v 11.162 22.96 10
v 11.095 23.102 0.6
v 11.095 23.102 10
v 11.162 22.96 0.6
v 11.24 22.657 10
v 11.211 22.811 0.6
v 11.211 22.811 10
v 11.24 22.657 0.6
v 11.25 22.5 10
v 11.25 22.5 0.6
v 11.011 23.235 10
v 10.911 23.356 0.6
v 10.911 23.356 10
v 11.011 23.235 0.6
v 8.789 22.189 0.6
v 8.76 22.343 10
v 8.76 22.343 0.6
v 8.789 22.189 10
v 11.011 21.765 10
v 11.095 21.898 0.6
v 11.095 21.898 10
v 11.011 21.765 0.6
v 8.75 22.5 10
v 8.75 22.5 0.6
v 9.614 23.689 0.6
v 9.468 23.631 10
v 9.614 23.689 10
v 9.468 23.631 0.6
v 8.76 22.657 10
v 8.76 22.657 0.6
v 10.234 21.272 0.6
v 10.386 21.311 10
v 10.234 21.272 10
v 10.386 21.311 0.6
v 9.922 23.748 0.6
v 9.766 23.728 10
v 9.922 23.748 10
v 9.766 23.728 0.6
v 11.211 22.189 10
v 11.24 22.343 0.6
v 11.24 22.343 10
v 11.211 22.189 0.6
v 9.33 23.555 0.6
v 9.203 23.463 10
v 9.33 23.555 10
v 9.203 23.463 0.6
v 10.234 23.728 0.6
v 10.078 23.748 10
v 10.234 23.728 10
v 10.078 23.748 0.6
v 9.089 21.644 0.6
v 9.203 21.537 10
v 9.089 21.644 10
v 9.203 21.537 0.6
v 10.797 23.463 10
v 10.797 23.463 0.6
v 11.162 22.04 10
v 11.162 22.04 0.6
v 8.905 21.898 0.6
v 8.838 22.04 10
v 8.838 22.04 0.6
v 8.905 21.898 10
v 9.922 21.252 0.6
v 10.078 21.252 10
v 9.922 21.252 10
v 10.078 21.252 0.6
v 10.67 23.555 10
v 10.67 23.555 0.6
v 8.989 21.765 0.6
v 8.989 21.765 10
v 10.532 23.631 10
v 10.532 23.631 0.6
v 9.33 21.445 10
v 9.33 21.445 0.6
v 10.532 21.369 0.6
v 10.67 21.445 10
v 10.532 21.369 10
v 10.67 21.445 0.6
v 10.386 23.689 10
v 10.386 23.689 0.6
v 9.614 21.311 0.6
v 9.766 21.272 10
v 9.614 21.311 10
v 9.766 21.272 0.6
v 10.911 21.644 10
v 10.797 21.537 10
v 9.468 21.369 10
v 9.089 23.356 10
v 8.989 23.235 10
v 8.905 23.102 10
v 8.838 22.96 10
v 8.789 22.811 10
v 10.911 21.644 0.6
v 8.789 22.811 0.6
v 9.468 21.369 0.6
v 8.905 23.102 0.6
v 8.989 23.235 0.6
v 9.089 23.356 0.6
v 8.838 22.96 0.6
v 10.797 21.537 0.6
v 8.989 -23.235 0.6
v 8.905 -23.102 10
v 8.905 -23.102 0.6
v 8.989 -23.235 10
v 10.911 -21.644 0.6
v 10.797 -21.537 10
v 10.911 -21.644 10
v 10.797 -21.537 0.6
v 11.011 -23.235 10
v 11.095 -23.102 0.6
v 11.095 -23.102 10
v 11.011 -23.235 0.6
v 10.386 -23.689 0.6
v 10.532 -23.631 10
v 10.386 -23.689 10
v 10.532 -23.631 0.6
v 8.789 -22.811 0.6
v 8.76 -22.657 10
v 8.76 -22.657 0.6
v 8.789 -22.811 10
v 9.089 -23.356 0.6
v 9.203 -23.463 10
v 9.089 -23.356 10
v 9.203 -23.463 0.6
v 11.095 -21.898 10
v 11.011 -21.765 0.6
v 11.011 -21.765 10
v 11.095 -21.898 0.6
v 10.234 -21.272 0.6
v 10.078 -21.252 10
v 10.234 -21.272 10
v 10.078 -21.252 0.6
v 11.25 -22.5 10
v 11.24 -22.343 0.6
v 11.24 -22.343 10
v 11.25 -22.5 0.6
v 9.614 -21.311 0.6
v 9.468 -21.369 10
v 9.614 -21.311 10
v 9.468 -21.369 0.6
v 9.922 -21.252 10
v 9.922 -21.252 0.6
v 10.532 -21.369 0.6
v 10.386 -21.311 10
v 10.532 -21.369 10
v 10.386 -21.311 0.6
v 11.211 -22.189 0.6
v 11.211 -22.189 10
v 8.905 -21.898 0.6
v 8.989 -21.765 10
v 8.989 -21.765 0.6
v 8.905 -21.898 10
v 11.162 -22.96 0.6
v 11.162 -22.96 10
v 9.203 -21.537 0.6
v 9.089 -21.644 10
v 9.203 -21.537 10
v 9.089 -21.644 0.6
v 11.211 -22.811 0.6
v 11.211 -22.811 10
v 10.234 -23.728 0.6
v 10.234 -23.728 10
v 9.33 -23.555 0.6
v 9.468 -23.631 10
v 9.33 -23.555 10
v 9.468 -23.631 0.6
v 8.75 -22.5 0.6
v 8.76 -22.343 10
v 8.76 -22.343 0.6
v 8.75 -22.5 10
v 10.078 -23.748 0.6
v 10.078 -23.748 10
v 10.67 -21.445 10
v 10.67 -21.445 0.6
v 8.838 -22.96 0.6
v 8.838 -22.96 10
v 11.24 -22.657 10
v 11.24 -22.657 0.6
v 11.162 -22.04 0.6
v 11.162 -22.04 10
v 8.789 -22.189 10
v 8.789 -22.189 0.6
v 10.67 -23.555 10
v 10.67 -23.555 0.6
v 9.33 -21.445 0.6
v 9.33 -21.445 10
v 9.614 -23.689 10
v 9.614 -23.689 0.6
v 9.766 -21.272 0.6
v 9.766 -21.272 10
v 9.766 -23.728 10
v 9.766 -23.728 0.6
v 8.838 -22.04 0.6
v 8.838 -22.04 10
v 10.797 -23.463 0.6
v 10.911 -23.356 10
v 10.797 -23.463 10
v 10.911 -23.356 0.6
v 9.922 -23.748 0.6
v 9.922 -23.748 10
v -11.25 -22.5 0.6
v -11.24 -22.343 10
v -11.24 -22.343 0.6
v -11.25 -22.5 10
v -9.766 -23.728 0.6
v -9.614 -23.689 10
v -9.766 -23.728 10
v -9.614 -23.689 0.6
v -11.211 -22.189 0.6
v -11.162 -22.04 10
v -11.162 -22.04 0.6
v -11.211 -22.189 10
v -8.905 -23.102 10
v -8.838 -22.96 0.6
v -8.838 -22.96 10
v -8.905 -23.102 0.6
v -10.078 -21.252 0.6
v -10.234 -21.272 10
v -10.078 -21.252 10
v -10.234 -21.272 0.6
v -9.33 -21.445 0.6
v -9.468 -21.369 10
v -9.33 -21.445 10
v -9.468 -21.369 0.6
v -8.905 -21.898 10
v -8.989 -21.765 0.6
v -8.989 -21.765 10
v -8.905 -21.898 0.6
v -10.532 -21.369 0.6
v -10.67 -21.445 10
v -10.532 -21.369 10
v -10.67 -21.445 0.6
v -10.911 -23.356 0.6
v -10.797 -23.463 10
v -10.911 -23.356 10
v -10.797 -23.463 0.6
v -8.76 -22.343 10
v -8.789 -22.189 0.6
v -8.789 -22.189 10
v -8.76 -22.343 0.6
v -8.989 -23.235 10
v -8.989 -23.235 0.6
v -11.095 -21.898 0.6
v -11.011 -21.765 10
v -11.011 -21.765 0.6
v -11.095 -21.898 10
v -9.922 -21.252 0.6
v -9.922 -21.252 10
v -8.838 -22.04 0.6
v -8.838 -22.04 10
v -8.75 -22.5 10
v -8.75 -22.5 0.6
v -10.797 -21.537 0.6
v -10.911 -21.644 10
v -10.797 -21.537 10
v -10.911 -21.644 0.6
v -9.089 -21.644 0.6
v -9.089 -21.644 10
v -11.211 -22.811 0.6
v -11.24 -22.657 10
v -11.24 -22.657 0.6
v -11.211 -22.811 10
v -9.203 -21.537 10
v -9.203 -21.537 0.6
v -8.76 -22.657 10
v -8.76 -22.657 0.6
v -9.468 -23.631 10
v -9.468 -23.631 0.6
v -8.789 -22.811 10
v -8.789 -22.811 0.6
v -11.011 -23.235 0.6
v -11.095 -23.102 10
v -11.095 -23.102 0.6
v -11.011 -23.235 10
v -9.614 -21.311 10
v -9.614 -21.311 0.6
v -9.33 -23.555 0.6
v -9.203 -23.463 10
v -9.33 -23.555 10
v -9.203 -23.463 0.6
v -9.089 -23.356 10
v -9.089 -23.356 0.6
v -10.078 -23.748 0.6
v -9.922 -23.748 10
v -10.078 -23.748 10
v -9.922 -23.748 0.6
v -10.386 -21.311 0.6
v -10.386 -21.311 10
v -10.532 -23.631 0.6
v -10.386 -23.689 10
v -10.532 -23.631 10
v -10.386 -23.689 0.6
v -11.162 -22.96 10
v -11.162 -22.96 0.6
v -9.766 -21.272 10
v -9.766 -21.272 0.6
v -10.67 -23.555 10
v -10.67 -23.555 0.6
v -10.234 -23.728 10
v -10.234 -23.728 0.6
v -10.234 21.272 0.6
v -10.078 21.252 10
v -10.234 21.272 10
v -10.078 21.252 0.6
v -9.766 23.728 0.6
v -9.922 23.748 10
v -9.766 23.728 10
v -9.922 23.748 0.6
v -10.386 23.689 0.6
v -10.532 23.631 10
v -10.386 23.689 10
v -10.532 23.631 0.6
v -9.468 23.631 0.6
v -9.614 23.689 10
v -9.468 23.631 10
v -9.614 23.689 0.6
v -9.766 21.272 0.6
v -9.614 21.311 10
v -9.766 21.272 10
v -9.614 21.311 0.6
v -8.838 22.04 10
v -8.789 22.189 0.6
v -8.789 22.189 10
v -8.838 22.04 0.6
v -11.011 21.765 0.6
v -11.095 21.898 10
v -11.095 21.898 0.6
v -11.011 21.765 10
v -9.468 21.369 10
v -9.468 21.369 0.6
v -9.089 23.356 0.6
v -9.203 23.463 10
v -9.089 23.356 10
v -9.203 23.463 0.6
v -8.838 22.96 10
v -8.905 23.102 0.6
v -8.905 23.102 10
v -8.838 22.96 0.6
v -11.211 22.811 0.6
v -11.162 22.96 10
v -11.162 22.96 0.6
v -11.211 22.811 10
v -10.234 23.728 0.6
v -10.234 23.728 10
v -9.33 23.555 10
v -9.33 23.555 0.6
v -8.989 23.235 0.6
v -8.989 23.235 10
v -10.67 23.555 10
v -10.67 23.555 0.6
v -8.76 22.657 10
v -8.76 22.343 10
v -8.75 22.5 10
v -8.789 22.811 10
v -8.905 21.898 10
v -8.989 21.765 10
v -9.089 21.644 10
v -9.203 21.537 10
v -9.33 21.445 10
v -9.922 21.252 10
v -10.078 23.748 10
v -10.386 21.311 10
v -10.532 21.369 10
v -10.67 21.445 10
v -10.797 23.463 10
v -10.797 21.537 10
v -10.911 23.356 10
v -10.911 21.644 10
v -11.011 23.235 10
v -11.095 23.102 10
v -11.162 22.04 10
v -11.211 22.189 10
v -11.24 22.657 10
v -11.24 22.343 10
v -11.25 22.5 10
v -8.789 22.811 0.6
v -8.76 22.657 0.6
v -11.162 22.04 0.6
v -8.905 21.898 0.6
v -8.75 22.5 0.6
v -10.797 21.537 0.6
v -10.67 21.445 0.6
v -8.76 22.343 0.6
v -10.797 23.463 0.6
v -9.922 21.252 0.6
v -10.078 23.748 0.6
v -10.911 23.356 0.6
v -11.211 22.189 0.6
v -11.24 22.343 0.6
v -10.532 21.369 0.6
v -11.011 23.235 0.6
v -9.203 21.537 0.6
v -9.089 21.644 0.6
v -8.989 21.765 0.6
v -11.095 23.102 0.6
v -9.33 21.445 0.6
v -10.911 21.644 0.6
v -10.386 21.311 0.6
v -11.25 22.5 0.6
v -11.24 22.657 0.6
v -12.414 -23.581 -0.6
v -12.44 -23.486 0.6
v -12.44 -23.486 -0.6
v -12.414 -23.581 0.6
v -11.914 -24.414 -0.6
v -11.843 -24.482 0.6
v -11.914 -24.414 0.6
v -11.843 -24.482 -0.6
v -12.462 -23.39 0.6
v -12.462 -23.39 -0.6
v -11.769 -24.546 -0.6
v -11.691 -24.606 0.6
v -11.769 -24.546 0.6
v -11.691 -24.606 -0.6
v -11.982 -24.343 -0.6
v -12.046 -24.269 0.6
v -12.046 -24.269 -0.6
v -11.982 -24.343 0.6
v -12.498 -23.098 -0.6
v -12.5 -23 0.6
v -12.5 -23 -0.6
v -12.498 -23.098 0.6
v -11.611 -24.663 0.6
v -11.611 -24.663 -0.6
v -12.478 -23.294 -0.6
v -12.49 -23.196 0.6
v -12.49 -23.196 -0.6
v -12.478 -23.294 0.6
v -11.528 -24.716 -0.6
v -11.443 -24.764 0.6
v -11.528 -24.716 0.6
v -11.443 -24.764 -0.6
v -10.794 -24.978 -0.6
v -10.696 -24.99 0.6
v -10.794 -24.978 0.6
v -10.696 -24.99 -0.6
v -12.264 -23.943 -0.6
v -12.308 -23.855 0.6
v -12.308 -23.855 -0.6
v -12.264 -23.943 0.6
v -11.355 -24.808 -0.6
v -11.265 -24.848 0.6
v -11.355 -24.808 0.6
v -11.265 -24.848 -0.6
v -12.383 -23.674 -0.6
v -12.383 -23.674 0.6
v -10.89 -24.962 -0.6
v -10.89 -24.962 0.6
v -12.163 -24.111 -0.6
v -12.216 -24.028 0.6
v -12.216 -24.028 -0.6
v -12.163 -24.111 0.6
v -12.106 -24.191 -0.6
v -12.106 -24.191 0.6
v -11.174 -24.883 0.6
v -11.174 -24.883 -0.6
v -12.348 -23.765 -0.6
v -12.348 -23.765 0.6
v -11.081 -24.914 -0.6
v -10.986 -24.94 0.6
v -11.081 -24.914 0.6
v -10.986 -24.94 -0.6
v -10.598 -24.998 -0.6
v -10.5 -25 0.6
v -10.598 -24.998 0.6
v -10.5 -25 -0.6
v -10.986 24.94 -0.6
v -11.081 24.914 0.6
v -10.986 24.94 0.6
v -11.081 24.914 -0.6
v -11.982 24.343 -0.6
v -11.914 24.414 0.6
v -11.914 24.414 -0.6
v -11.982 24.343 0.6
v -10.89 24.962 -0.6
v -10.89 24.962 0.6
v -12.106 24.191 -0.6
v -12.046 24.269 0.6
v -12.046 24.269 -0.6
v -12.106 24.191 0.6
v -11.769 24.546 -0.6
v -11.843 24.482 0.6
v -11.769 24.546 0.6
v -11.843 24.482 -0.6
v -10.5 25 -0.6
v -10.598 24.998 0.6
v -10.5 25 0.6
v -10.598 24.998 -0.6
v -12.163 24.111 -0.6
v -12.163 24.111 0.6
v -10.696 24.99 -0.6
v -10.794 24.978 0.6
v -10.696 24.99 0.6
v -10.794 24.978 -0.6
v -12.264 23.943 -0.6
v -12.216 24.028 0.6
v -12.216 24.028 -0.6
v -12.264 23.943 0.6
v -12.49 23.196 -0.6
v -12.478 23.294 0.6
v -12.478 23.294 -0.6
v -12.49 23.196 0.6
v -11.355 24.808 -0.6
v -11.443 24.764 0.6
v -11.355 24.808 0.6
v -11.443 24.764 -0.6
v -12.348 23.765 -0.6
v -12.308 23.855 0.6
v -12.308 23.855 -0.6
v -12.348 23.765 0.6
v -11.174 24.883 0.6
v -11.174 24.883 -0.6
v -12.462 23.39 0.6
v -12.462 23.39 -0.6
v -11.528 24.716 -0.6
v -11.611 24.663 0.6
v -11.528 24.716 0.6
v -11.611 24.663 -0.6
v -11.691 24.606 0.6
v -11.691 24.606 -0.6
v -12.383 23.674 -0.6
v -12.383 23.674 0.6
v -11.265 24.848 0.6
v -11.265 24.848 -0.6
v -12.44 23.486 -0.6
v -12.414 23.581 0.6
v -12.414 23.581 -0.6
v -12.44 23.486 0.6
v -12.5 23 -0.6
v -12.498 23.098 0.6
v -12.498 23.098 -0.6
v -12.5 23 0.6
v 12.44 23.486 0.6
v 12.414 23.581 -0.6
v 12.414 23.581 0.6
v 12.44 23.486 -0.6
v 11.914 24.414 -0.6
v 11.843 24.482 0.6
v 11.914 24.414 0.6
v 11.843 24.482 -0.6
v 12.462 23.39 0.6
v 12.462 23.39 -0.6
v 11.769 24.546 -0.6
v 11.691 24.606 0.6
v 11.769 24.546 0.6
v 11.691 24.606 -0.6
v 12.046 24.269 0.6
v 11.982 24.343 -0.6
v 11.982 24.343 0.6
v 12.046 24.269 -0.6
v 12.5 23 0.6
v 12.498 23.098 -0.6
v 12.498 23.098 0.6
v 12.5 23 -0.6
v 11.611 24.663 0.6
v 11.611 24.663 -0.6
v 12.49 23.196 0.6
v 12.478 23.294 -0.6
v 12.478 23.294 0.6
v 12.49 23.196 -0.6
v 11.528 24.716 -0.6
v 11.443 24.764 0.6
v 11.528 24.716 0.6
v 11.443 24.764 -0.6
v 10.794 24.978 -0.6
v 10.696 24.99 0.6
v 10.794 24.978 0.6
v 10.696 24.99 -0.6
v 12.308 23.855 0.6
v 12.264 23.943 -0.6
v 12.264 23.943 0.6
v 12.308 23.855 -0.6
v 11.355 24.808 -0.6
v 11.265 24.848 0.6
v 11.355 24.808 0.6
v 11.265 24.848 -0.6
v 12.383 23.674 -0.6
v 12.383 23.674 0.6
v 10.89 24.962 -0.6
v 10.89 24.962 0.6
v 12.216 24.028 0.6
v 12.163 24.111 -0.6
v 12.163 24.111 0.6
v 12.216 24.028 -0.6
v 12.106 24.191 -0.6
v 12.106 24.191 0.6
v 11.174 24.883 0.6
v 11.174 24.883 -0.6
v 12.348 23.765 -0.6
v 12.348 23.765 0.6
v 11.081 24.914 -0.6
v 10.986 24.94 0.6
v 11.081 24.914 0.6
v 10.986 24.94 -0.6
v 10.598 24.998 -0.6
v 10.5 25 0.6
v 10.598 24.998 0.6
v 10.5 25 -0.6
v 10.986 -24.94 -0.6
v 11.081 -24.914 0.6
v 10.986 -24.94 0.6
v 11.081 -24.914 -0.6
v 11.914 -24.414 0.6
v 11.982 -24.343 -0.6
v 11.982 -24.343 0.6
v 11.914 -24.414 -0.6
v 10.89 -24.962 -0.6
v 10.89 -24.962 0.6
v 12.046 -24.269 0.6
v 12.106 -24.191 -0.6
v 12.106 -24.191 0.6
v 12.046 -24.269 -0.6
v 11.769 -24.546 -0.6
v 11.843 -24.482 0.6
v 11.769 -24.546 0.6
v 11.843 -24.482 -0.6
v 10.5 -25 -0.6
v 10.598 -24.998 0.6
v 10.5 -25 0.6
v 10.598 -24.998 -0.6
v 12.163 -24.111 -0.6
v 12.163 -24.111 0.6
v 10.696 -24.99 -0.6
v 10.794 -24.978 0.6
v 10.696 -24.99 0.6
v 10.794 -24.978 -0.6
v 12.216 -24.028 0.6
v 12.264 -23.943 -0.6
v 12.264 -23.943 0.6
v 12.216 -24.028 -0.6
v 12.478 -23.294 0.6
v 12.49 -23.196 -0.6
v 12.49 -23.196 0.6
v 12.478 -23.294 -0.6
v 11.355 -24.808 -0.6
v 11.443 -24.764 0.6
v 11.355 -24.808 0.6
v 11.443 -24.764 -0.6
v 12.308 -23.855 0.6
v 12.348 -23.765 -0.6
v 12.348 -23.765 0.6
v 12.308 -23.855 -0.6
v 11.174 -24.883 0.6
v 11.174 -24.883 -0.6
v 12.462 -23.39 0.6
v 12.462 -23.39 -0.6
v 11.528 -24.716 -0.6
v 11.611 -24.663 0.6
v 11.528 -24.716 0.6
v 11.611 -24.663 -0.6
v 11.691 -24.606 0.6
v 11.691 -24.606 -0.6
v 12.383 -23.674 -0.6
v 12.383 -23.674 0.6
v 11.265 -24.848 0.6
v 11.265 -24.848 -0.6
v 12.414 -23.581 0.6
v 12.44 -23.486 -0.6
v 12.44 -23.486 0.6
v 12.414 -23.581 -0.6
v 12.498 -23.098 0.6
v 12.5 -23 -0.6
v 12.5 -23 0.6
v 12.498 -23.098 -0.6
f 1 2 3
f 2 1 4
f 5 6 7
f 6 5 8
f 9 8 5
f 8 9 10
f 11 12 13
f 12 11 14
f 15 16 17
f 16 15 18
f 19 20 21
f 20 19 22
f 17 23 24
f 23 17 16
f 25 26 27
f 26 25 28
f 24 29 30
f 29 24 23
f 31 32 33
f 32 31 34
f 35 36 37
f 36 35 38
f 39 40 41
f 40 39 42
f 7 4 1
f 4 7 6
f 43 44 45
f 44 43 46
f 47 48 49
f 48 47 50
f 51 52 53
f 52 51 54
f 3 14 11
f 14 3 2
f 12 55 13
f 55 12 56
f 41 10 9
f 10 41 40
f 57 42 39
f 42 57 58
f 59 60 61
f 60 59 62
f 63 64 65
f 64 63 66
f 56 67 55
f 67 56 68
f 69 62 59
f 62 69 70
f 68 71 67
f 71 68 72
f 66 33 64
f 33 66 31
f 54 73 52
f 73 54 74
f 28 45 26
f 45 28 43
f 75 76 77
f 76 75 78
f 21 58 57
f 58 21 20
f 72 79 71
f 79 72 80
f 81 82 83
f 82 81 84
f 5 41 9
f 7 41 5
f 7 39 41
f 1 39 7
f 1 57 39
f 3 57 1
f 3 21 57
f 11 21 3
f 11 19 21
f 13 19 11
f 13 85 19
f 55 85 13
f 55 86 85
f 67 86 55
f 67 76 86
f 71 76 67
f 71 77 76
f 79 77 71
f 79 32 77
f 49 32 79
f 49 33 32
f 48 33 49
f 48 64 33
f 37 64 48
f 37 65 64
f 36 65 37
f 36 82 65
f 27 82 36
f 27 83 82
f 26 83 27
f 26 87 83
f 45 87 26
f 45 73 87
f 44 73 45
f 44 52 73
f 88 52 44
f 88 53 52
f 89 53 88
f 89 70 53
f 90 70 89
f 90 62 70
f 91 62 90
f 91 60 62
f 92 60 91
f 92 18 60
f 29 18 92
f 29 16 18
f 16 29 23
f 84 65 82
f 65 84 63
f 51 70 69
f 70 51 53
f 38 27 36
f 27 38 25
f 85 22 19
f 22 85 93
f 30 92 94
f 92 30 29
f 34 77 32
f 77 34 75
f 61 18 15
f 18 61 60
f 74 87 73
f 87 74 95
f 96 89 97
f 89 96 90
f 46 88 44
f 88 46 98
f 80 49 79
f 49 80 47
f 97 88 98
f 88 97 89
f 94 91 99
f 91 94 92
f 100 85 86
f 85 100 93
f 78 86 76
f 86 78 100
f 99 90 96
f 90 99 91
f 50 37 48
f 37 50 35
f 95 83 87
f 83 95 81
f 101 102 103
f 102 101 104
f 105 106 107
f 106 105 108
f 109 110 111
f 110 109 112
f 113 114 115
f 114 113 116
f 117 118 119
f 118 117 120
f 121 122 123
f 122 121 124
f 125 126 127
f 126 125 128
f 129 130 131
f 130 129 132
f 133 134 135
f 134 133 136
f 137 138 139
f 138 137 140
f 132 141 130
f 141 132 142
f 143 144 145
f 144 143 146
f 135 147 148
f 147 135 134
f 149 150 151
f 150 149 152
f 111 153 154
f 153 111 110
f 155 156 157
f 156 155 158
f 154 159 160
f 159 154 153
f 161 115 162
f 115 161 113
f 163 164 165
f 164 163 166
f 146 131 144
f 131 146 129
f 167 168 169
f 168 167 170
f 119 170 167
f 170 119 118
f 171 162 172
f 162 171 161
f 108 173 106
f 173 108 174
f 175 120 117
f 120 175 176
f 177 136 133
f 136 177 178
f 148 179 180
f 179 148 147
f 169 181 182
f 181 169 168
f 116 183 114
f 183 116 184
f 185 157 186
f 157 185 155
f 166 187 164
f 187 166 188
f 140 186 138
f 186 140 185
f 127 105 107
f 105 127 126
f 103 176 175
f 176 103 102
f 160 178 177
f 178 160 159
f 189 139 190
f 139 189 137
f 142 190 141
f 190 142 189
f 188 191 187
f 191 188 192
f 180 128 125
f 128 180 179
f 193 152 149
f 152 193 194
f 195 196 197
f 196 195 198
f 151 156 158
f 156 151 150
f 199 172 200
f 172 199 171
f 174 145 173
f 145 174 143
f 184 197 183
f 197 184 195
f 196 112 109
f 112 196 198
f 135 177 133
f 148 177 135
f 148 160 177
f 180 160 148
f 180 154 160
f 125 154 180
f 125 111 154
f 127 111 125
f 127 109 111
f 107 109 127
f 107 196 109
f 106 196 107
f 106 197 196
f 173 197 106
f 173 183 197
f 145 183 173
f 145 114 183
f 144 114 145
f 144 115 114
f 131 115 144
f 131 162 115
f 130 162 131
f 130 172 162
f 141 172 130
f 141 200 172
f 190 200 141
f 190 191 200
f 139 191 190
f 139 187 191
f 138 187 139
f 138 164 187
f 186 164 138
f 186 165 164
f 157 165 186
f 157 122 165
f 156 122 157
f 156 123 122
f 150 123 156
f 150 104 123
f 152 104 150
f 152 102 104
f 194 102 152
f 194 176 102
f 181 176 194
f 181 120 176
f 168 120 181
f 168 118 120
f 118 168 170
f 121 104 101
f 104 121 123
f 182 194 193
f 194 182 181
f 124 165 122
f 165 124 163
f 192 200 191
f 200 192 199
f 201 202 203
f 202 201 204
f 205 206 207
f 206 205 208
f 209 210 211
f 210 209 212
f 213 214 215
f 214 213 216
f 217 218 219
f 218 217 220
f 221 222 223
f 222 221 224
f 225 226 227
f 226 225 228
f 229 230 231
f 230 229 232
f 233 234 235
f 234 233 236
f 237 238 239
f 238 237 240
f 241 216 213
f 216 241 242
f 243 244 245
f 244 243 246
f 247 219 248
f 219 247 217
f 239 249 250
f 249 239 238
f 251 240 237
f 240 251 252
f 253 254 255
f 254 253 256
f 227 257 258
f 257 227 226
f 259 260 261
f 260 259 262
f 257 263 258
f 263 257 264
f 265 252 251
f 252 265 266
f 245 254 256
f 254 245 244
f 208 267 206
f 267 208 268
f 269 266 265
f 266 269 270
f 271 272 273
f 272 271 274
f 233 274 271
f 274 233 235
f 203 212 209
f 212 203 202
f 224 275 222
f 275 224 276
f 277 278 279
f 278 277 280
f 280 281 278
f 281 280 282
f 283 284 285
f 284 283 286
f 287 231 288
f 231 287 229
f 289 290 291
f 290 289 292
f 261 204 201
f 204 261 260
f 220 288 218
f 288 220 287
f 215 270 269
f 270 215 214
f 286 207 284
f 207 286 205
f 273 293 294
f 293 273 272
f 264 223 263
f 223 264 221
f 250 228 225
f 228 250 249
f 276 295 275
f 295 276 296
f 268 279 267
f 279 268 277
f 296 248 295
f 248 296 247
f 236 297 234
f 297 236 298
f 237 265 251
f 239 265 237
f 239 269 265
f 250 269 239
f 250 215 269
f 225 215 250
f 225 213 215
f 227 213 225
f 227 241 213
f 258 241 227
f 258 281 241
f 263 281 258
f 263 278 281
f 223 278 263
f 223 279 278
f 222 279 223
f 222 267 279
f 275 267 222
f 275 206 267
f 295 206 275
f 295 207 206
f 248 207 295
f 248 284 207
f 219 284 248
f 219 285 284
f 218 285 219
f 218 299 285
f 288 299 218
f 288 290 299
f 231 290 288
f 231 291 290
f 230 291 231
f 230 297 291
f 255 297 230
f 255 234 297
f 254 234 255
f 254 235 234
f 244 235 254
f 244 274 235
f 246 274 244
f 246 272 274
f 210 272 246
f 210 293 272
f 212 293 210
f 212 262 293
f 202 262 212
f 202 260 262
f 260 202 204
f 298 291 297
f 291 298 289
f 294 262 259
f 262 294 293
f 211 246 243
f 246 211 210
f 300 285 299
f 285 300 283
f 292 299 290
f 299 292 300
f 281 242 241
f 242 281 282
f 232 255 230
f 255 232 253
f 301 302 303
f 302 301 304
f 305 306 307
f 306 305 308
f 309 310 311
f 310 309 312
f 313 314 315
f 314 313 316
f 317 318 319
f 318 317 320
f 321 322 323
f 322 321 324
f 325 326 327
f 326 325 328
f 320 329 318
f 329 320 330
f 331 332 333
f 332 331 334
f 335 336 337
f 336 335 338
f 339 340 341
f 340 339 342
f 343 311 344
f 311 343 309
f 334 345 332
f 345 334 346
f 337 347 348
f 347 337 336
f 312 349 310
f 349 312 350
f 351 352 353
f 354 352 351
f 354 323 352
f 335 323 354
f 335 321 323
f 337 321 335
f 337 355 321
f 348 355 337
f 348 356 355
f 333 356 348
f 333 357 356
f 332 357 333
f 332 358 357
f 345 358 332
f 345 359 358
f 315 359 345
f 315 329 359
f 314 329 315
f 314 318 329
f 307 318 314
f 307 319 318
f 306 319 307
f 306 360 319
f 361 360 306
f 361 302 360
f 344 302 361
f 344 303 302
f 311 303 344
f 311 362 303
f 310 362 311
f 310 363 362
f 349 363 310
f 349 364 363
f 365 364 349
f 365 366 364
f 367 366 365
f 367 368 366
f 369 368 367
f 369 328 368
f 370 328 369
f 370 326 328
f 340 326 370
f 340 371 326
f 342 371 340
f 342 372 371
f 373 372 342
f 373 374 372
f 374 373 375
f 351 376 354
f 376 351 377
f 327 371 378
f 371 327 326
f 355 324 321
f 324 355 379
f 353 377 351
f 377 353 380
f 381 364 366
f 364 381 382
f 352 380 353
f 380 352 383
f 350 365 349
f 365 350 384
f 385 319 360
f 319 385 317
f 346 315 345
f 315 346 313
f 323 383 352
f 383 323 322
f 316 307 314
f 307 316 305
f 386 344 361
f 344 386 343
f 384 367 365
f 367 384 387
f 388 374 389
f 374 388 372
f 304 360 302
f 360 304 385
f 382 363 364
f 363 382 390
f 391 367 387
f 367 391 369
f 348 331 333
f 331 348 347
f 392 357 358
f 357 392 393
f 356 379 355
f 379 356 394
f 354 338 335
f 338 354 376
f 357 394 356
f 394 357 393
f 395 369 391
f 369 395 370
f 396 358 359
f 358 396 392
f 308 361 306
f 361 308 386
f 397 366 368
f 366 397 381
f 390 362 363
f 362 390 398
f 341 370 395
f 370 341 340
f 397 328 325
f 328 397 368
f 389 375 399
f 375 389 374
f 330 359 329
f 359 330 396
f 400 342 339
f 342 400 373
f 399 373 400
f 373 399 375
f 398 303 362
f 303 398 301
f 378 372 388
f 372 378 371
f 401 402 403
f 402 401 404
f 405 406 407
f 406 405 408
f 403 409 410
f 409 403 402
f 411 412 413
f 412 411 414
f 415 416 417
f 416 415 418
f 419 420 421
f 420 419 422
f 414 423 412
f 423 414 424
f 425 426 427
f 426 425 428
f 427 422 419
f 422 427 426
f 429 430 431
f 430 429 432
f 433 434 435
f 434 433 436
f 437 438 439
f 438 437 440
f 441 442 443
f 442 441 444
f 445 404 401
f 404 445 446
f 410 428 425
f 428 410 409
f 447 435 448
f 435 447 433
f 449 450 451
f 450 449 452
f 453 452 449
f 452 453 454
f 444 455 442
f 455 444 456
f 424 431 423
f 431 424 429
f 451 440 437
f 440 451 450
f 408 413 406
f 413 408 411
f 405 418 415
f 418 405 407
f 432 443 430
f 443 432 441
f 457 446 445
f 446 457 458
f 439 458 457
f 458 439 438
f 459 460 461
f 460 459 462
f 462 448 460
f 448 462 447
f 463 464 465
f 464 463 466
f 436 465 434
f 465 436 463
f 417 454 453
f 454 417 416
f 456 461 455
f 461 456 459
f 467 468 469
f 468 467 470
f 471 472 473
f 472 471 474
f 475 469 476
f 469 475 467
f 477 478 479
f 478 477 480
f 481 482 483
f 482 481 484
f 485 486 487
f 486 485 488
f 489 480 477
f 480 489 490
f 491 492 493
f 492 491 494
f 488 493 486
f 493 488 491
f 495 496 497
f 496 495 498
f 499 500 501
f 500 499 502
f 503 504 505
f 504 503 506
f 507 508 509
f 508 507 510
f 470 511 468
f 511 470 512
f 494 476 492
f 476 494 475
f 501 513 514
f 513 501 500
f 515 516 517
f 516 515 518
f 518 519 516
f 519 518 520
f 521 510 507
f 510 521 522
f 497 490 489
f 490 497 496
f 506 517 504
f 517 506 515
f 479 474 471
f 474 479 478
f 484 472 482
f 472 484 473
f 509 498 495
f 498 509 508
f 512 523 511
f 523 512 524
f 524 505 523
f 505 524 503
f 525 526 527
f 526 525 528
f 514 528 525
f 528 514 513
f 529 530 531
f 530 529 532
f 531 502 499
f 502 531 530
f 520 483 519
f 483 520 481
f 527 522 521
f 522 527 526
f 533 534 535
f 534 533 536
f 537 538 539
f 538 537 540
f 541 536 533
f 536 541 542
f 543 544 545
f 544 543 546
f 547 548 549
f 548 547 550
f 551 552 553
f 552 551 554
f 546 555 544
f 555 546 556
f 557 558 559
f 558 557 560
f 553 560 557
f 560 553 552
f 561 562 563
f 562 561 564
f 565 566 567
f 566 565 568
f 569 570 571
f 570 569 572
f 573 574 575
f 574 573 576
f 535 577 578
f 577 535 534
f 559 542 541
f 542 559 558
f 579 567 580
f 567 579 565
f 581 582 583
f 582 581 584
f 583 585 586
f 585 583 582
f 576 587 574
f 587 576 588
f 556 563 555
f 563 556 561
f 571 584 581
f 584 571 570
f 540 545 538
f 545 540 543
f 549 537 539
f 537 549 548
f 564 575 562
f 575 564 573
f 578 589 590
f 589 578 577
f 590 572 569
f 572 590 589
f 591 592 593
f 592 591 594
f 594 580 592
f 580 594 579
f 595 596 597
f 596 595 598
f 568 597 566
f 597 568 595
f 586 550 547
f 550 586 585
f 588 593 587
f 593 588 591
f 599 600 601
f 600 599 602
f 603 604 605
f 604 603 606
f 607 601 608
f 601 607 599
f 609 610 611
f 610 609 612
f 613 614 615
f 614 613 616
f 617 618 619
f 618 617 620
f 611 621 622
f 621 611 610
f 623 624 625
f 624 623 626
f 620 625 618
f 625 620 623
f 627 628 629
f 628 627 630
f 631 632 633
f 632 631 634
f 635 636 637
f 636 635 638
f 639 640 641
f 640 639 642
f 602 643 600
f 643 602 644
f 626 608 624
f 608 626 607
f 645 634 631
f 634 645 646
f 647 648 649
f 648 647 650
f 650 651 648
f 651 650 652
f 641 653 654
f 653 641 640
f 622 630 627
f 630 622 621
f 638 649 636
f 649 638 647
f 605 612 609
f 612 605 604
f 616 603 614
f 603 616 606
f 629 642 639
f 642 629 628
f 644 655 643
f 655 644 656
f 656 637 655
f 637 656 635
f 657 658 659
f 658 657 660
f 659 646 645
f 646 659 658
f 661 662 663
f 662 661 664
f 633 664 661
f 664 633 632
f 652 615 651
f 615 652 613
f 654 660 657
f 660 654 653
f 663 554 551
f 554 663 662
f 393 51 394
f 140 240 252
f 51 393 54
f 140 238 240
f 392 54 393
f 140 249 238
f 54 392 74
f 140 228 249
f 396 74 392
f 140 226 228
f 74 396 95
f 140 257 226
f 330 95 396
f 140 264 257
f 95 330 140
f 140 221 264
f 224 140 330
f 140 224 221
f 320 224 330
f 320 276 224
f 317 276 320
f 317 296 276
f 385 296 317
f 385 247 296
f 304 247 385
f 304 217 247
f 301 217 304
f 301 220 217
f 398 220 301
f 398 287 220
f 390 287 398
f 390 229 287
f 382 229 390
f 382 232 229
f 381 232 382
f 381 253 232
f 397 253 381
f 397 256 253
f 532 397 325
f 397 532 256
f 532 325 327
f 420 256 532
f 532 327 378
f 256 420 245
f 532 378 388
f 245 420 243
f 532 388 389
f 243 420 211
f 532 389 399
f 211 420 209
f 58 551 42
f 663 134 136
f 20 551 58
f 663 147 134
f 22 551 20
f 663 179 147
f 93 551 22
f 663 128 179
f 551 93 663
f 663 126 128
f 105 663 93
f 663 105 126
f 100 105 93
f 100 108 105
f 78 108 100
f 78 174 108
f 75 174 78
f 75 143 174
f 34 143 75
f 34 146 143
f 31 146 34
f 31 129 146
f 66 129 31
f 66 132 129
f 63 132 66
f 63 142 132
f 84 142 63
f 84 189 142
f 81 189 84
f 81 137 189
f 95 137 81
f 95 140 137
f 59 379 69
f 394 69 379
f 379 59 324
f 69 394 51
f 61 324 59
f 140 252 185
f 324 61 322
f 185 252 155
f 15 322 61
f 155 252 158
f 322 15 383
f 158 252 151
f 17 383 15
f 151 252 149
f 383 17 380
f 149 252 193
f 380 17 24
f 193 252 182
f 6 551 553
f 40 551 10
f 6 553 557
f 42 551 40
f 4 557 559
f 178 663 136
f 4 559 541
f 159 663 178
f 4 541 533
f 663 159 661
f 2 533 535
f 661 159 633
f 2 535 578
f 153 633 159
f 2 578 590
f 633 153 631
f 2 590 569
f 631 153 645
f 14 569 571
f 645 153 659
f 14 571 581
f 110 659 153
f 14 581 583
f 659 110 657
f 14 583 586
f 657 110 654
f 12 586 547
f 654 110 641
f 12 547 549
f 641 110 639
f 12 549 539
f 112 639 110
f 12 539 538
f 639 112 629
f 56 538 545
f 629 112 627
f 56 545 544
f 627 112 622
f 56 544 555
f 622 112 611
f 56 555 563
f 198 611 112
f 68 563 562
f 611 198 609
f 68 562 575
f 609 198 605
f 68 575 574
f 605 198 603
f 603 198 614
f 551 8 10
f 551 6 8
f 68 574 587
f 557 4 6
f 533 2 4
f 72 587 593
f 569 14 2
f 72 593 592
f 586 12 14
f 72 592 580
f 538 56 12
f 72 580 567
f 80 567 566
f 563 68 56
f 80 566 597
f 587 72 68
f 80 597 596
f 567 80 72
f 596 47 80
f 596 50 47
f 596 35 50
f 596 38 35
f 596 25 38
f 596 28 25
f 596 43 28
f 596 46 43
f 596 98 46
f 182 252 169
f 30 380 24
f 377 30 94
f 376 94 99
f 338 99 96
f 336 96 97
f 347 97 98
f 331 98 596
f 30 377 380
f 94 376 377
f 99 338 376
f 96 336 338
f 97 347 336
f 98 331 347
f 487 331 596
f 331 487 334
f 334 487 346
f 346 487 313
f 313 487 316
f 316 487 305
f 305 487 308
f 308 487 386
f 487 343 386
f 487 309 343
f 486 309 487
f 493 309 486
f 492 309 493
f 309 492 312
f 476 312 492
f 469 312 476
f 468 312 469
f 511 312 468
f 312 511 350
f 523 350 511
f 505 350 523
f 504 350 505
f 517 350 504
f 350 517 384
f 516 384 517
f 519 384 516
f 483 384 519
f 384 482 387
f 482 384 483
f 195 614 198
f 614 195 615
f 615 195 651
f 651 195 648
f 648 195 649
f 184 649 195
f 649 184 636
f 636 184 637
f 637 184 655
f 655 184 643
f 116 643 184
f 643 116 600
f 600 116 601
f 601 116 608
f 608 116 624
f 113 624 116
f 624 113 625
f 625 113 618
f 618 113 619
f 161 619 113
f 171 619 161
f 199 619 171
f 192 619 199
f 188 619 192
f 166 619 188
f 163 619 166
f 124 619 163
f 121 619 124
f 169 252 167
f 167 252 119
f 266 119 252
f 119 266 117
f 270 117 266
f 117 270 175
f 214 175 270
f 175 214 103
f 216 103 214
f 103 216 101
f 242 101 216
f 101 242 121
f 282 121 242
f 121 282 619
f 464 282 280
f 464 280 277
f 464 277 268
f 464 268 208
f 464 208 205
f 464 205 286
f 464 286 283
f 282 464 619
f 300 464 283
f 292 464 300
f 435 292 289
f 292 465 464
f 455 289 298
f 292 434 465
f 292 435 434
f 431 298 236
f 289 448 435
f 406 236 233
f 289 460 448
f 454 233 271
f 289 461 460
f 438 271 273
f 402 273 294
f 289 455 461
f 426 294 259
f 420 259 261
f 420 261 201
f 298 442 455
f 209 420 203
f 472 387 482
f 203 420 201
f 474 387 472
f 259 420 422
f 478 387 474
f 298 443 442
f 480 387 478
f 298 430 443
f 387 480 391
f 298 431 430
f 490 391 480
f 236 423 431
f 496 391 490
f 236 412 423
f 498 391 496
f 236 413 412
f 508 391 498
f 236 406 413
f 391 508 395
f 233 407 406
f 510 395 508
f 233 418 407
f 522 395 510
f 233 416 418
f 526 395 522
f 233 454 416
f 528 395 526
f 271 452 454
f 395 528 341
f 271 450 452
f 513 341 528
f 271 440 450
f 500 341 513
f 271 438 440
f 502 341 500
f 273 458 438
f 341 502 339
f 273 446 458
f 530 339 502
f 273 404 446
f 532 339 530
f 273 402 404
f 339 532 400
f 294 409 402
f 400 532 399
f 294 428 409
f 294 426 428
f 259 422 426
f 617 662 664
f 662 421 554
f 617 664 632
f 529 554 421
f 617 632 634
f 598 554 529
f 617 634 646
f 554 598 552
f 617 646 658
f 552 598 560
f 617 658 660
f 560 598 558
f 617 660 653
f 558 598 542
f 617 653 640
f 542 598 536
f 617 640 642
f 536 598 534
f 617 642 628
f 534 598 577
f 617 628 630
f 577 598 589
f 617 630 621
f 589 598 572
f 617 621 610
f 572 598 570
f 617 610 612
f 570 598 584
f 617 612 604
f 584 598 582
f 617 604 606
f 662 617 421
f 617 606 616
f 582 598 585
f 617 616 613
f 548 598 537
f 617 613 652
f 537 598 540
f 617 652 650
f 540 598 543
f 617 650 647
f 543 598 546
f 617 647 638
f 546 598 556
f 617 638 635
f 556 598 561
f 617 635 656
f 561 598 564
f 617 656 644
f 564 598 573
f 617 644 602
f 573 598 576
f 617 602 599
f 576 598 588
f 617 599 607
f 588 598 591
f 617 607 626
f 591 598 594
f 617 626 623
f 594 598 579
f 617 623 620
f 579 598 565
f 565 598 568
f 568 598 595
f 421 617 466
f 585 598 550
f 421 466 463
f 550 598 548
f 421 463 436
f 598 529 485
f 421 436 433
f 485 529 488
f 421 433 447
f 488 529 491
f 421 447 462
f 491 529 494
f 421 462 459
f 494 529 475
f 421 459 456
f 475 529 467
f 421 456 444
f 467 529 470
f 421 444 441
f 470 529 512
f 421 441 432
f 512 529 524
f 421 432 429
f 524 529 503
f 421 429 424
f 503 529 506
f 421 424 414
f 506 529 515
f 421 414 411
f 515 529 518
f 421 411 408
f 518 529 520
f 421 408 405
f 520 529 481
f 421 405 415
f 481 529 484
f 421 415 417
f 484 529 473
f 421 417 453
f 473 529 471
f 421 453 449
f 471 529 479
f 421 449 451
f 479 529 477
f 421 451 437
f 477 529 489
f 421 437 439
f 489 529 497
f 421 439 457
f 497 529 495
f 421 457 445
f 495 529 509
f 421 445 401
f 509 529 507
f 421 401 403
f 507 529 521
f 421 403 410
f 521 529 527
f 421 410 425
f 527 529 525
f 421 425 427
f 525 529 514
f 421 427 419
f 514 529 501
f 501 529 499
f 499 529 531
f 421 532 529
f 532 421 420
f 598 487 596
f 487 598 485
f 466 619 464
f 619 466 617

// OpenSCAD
// file: roundedCube.scad
/*
	Usage
	=====
	Prototype: roundedCube(dim, r, x, y, z, xcorners, ycorners, zcorners, $fn)
	Arguments:
		-      dim = Array of x,y,z numbers representing cube size
		-        r = Radius of corners. Default: 1
		-        x = Round the corners along the X axis of the cube. Default: false
		-        y = Round the corners along the Y axis of the cube. Default: false
		-        z = Round the corners along the Z axis of the cube. Default: true
		- xcorners = Array of 4 booleans, one for each X side of the cube, if true then round that side. Default: [true, true, true, true]
		- ycorners = Array of 4 booleans, one for each Y side of the cube, if true then round that side. Default: [true, true, true, true]
		- zcorners = Array of 4 booleans, one for each Z side of the cube, if true then round that side. Default: [true, true, true, true]
		-   center = Whether to render the cube centered or not. Default: false
		-      $fn = How smooth you want the rounding to be. Default: 128

	Thanks to robert@cosmicrealms.com from https://github.com/Sembiance/openscad-modules
    For a starting point for the project
*/

// Example code:

/*cube([5, 10, 4]);

translate([8, 0, 0]) { roundedCube([5, 10, 4], r=1); }
translate([16, 0, 0]) { roundedCube([5, 10, 4], r=1, zcorners=[true, false, true, false]); }

translate([24, 0, 0]) { roundedCube([5, 10, 4], r=1, y=true, z=false); }
translate([32, 0, 0]) { roundedCube([5, 10, 4], r=1, x=true, z=false); }
translate([40, 0, 0]) { roundedCube([5, 10, 4], r=1, x=true, y=true, z=true); }
*/

module roundedCube(dim, r=1, x=false, y=false, z=true, xcorners=[true,true,true,true], ycorners=[true,true,true,true], zcorners=[true,true,true,true], center=false, $fn=128)
{
	translate([(center==true ? (-(dim[0]/2)) : 0), (center==true ? (-(dim[1]/2)) : 0), (center==true ? (-(dim[2]/2)) : 0)])
	{
		difference()
		{
			cube(dim);

			if(z)
			{
				translate([0, 0, -0.1])
				{
					if(zcorners[0])
						translate([0, dim[1]-r]) { rotateAround([0, 0, 90], [r/2, r/2, 0]) { meniscus(h=dim[2], r=r, fn=$fn); } }
					if(zcorners[1])
						translate([dim[0]-r, dim[1]-r]) { meniscus(h=dim[2], r=r, fn=$fn); }
					if(zcorners[2])
						translate([dim[0]-r, 0]) { rotateAround([0, 0, -90], [r/2, r/2, 0]) { meniscus(h=dim[2], r=r, fn=$fn); } }
					if(zcorners[3])
						rotateAround([0, 0, -180], [r/2, r/2, 0]) { meniscus(h=dim[2], r=r, fn=$fn); }
				}
			}

			if(y)
			{
				translate([0, -0.1, 0])
				{
					if(ycorners[0])
						translate([0, 0, dim[2]-r]) { rotateAround([0, 180, 0], [r/2, 0, r/2]) { rotateAround([-90, 0, 0], [0, r/2, r/2]) { meniscus(h=dim[1], r=r); } } }
					if(ycorners[1])
						translate([dim[0]-r, 0, dim[2]-r]) { rotateAround([0, -90, 0], [r/2, 0, r/2]) { rotateAround([-90, 0, 0], [0, r/2, r/2]) { meniscus(h=dim[1], r=r); } } }
					if(ycorners[2])
						translate([dim[0]-r, 0]) { rotateAround([-90, 0, 0], [0, r/2, r/2]) { meniscus(h=dim[1], r=r); } }
					if(ycorners[3])
						rotateAround([0, 90, 0], [r/2, 0, r/2]) { rotateAround([-90, 0, 0], [0, r/2, r/2]) { meniscus(h=dim[1], r=r); } }
				}
			}

			if(x)
			{
				translate([-0.1, 0, 0])
				{
					if(xcorners[0])
						translate([0, dim[1]-r]) { rotateAround([0, 90, 0], [r/2, 0, r/2]) { meniscus(h=dim[0], r=r); } }
					if(xcorners[1])
						translate([0, dim[1]-r, dim[2]-r]) { rotateAround([90, 0, 0], [0, r/2, r/2]) { rotateAround([0, 90, 0], [r/2, 0, r/2]) { meniscus(h=dim[0], r=r); } } }
					if(xcorners[2])
						translate([0, 0, dim[2]-r]) { rotateAround([180, 0, 0], [0, r/2, r/2]) { rotateAround([0, 90, 0], [r/2, 0, r/2]) { meniscus(h=dim[0], r=r); } } }
					if(xcorners[3])
						rotateAround([-90, 0, 0], [0, r/2, r/2]) { rotateAround([0, 90, 0], [r/2, 0, r/2]) { meniscus(h=dim[0], r=r); } }
				}
			}
		}
	}
}

module meniscus(h, r, fn=128)
{
	$fn=fn;

	difference()
	{
		cube([r+0.2, r+0.2, h+0.2]);
		translate([0, 0, -0.1]) { cylinder(h=h+0.4, r=r); }
	}
}

module rotateAround(a, v) { translate(v) { rotate(a) { translate(-v) { children(); } } } }
// main file
use <roundedCube.scad>

// Relay secure poles for https://smile.amazon.com/gp/product/B07M88JRFY/ref=ppx_yo_dt_b_search_asin_title?ie=UTF8&psc=1

pole_height=10;
// hole diameter is 3. Leave some free-play.
pole_diameter=2.5;
pole_x_distance=20;
pole_y_distance=45;

base_plate_thickness=1.2;
rounded_corner_radius=2;

module relay_secure_pole() {
    cylinder(h=pole_height, d=pole_diameter, center=false, $fn=50);
}

module relay_secure_poles() {
    translate([pole_x_distance/2, pole_y_distance/2, 0])
        relay_secure_pole();
    translate([pole_x_distance/2, -pole_y_distance/2, 0])
        relay_secure_pole();
    translate([-pole_x_distance/2, -pole_y_distance/2, 0])
        relay_secure_pole();
    translate([-pole_x_distance/2, pole_y_distance/2, 0])
        relay_secure_pole();
}

module base_plate() {
    roundedCube([pole_x_distance + pole_diameter*2, pole_y_distance + pole_diameter*2, base_plate_thickness], center=true, r=rounded_corner_radius);
}

relay_secure_poles();
base_plate();
